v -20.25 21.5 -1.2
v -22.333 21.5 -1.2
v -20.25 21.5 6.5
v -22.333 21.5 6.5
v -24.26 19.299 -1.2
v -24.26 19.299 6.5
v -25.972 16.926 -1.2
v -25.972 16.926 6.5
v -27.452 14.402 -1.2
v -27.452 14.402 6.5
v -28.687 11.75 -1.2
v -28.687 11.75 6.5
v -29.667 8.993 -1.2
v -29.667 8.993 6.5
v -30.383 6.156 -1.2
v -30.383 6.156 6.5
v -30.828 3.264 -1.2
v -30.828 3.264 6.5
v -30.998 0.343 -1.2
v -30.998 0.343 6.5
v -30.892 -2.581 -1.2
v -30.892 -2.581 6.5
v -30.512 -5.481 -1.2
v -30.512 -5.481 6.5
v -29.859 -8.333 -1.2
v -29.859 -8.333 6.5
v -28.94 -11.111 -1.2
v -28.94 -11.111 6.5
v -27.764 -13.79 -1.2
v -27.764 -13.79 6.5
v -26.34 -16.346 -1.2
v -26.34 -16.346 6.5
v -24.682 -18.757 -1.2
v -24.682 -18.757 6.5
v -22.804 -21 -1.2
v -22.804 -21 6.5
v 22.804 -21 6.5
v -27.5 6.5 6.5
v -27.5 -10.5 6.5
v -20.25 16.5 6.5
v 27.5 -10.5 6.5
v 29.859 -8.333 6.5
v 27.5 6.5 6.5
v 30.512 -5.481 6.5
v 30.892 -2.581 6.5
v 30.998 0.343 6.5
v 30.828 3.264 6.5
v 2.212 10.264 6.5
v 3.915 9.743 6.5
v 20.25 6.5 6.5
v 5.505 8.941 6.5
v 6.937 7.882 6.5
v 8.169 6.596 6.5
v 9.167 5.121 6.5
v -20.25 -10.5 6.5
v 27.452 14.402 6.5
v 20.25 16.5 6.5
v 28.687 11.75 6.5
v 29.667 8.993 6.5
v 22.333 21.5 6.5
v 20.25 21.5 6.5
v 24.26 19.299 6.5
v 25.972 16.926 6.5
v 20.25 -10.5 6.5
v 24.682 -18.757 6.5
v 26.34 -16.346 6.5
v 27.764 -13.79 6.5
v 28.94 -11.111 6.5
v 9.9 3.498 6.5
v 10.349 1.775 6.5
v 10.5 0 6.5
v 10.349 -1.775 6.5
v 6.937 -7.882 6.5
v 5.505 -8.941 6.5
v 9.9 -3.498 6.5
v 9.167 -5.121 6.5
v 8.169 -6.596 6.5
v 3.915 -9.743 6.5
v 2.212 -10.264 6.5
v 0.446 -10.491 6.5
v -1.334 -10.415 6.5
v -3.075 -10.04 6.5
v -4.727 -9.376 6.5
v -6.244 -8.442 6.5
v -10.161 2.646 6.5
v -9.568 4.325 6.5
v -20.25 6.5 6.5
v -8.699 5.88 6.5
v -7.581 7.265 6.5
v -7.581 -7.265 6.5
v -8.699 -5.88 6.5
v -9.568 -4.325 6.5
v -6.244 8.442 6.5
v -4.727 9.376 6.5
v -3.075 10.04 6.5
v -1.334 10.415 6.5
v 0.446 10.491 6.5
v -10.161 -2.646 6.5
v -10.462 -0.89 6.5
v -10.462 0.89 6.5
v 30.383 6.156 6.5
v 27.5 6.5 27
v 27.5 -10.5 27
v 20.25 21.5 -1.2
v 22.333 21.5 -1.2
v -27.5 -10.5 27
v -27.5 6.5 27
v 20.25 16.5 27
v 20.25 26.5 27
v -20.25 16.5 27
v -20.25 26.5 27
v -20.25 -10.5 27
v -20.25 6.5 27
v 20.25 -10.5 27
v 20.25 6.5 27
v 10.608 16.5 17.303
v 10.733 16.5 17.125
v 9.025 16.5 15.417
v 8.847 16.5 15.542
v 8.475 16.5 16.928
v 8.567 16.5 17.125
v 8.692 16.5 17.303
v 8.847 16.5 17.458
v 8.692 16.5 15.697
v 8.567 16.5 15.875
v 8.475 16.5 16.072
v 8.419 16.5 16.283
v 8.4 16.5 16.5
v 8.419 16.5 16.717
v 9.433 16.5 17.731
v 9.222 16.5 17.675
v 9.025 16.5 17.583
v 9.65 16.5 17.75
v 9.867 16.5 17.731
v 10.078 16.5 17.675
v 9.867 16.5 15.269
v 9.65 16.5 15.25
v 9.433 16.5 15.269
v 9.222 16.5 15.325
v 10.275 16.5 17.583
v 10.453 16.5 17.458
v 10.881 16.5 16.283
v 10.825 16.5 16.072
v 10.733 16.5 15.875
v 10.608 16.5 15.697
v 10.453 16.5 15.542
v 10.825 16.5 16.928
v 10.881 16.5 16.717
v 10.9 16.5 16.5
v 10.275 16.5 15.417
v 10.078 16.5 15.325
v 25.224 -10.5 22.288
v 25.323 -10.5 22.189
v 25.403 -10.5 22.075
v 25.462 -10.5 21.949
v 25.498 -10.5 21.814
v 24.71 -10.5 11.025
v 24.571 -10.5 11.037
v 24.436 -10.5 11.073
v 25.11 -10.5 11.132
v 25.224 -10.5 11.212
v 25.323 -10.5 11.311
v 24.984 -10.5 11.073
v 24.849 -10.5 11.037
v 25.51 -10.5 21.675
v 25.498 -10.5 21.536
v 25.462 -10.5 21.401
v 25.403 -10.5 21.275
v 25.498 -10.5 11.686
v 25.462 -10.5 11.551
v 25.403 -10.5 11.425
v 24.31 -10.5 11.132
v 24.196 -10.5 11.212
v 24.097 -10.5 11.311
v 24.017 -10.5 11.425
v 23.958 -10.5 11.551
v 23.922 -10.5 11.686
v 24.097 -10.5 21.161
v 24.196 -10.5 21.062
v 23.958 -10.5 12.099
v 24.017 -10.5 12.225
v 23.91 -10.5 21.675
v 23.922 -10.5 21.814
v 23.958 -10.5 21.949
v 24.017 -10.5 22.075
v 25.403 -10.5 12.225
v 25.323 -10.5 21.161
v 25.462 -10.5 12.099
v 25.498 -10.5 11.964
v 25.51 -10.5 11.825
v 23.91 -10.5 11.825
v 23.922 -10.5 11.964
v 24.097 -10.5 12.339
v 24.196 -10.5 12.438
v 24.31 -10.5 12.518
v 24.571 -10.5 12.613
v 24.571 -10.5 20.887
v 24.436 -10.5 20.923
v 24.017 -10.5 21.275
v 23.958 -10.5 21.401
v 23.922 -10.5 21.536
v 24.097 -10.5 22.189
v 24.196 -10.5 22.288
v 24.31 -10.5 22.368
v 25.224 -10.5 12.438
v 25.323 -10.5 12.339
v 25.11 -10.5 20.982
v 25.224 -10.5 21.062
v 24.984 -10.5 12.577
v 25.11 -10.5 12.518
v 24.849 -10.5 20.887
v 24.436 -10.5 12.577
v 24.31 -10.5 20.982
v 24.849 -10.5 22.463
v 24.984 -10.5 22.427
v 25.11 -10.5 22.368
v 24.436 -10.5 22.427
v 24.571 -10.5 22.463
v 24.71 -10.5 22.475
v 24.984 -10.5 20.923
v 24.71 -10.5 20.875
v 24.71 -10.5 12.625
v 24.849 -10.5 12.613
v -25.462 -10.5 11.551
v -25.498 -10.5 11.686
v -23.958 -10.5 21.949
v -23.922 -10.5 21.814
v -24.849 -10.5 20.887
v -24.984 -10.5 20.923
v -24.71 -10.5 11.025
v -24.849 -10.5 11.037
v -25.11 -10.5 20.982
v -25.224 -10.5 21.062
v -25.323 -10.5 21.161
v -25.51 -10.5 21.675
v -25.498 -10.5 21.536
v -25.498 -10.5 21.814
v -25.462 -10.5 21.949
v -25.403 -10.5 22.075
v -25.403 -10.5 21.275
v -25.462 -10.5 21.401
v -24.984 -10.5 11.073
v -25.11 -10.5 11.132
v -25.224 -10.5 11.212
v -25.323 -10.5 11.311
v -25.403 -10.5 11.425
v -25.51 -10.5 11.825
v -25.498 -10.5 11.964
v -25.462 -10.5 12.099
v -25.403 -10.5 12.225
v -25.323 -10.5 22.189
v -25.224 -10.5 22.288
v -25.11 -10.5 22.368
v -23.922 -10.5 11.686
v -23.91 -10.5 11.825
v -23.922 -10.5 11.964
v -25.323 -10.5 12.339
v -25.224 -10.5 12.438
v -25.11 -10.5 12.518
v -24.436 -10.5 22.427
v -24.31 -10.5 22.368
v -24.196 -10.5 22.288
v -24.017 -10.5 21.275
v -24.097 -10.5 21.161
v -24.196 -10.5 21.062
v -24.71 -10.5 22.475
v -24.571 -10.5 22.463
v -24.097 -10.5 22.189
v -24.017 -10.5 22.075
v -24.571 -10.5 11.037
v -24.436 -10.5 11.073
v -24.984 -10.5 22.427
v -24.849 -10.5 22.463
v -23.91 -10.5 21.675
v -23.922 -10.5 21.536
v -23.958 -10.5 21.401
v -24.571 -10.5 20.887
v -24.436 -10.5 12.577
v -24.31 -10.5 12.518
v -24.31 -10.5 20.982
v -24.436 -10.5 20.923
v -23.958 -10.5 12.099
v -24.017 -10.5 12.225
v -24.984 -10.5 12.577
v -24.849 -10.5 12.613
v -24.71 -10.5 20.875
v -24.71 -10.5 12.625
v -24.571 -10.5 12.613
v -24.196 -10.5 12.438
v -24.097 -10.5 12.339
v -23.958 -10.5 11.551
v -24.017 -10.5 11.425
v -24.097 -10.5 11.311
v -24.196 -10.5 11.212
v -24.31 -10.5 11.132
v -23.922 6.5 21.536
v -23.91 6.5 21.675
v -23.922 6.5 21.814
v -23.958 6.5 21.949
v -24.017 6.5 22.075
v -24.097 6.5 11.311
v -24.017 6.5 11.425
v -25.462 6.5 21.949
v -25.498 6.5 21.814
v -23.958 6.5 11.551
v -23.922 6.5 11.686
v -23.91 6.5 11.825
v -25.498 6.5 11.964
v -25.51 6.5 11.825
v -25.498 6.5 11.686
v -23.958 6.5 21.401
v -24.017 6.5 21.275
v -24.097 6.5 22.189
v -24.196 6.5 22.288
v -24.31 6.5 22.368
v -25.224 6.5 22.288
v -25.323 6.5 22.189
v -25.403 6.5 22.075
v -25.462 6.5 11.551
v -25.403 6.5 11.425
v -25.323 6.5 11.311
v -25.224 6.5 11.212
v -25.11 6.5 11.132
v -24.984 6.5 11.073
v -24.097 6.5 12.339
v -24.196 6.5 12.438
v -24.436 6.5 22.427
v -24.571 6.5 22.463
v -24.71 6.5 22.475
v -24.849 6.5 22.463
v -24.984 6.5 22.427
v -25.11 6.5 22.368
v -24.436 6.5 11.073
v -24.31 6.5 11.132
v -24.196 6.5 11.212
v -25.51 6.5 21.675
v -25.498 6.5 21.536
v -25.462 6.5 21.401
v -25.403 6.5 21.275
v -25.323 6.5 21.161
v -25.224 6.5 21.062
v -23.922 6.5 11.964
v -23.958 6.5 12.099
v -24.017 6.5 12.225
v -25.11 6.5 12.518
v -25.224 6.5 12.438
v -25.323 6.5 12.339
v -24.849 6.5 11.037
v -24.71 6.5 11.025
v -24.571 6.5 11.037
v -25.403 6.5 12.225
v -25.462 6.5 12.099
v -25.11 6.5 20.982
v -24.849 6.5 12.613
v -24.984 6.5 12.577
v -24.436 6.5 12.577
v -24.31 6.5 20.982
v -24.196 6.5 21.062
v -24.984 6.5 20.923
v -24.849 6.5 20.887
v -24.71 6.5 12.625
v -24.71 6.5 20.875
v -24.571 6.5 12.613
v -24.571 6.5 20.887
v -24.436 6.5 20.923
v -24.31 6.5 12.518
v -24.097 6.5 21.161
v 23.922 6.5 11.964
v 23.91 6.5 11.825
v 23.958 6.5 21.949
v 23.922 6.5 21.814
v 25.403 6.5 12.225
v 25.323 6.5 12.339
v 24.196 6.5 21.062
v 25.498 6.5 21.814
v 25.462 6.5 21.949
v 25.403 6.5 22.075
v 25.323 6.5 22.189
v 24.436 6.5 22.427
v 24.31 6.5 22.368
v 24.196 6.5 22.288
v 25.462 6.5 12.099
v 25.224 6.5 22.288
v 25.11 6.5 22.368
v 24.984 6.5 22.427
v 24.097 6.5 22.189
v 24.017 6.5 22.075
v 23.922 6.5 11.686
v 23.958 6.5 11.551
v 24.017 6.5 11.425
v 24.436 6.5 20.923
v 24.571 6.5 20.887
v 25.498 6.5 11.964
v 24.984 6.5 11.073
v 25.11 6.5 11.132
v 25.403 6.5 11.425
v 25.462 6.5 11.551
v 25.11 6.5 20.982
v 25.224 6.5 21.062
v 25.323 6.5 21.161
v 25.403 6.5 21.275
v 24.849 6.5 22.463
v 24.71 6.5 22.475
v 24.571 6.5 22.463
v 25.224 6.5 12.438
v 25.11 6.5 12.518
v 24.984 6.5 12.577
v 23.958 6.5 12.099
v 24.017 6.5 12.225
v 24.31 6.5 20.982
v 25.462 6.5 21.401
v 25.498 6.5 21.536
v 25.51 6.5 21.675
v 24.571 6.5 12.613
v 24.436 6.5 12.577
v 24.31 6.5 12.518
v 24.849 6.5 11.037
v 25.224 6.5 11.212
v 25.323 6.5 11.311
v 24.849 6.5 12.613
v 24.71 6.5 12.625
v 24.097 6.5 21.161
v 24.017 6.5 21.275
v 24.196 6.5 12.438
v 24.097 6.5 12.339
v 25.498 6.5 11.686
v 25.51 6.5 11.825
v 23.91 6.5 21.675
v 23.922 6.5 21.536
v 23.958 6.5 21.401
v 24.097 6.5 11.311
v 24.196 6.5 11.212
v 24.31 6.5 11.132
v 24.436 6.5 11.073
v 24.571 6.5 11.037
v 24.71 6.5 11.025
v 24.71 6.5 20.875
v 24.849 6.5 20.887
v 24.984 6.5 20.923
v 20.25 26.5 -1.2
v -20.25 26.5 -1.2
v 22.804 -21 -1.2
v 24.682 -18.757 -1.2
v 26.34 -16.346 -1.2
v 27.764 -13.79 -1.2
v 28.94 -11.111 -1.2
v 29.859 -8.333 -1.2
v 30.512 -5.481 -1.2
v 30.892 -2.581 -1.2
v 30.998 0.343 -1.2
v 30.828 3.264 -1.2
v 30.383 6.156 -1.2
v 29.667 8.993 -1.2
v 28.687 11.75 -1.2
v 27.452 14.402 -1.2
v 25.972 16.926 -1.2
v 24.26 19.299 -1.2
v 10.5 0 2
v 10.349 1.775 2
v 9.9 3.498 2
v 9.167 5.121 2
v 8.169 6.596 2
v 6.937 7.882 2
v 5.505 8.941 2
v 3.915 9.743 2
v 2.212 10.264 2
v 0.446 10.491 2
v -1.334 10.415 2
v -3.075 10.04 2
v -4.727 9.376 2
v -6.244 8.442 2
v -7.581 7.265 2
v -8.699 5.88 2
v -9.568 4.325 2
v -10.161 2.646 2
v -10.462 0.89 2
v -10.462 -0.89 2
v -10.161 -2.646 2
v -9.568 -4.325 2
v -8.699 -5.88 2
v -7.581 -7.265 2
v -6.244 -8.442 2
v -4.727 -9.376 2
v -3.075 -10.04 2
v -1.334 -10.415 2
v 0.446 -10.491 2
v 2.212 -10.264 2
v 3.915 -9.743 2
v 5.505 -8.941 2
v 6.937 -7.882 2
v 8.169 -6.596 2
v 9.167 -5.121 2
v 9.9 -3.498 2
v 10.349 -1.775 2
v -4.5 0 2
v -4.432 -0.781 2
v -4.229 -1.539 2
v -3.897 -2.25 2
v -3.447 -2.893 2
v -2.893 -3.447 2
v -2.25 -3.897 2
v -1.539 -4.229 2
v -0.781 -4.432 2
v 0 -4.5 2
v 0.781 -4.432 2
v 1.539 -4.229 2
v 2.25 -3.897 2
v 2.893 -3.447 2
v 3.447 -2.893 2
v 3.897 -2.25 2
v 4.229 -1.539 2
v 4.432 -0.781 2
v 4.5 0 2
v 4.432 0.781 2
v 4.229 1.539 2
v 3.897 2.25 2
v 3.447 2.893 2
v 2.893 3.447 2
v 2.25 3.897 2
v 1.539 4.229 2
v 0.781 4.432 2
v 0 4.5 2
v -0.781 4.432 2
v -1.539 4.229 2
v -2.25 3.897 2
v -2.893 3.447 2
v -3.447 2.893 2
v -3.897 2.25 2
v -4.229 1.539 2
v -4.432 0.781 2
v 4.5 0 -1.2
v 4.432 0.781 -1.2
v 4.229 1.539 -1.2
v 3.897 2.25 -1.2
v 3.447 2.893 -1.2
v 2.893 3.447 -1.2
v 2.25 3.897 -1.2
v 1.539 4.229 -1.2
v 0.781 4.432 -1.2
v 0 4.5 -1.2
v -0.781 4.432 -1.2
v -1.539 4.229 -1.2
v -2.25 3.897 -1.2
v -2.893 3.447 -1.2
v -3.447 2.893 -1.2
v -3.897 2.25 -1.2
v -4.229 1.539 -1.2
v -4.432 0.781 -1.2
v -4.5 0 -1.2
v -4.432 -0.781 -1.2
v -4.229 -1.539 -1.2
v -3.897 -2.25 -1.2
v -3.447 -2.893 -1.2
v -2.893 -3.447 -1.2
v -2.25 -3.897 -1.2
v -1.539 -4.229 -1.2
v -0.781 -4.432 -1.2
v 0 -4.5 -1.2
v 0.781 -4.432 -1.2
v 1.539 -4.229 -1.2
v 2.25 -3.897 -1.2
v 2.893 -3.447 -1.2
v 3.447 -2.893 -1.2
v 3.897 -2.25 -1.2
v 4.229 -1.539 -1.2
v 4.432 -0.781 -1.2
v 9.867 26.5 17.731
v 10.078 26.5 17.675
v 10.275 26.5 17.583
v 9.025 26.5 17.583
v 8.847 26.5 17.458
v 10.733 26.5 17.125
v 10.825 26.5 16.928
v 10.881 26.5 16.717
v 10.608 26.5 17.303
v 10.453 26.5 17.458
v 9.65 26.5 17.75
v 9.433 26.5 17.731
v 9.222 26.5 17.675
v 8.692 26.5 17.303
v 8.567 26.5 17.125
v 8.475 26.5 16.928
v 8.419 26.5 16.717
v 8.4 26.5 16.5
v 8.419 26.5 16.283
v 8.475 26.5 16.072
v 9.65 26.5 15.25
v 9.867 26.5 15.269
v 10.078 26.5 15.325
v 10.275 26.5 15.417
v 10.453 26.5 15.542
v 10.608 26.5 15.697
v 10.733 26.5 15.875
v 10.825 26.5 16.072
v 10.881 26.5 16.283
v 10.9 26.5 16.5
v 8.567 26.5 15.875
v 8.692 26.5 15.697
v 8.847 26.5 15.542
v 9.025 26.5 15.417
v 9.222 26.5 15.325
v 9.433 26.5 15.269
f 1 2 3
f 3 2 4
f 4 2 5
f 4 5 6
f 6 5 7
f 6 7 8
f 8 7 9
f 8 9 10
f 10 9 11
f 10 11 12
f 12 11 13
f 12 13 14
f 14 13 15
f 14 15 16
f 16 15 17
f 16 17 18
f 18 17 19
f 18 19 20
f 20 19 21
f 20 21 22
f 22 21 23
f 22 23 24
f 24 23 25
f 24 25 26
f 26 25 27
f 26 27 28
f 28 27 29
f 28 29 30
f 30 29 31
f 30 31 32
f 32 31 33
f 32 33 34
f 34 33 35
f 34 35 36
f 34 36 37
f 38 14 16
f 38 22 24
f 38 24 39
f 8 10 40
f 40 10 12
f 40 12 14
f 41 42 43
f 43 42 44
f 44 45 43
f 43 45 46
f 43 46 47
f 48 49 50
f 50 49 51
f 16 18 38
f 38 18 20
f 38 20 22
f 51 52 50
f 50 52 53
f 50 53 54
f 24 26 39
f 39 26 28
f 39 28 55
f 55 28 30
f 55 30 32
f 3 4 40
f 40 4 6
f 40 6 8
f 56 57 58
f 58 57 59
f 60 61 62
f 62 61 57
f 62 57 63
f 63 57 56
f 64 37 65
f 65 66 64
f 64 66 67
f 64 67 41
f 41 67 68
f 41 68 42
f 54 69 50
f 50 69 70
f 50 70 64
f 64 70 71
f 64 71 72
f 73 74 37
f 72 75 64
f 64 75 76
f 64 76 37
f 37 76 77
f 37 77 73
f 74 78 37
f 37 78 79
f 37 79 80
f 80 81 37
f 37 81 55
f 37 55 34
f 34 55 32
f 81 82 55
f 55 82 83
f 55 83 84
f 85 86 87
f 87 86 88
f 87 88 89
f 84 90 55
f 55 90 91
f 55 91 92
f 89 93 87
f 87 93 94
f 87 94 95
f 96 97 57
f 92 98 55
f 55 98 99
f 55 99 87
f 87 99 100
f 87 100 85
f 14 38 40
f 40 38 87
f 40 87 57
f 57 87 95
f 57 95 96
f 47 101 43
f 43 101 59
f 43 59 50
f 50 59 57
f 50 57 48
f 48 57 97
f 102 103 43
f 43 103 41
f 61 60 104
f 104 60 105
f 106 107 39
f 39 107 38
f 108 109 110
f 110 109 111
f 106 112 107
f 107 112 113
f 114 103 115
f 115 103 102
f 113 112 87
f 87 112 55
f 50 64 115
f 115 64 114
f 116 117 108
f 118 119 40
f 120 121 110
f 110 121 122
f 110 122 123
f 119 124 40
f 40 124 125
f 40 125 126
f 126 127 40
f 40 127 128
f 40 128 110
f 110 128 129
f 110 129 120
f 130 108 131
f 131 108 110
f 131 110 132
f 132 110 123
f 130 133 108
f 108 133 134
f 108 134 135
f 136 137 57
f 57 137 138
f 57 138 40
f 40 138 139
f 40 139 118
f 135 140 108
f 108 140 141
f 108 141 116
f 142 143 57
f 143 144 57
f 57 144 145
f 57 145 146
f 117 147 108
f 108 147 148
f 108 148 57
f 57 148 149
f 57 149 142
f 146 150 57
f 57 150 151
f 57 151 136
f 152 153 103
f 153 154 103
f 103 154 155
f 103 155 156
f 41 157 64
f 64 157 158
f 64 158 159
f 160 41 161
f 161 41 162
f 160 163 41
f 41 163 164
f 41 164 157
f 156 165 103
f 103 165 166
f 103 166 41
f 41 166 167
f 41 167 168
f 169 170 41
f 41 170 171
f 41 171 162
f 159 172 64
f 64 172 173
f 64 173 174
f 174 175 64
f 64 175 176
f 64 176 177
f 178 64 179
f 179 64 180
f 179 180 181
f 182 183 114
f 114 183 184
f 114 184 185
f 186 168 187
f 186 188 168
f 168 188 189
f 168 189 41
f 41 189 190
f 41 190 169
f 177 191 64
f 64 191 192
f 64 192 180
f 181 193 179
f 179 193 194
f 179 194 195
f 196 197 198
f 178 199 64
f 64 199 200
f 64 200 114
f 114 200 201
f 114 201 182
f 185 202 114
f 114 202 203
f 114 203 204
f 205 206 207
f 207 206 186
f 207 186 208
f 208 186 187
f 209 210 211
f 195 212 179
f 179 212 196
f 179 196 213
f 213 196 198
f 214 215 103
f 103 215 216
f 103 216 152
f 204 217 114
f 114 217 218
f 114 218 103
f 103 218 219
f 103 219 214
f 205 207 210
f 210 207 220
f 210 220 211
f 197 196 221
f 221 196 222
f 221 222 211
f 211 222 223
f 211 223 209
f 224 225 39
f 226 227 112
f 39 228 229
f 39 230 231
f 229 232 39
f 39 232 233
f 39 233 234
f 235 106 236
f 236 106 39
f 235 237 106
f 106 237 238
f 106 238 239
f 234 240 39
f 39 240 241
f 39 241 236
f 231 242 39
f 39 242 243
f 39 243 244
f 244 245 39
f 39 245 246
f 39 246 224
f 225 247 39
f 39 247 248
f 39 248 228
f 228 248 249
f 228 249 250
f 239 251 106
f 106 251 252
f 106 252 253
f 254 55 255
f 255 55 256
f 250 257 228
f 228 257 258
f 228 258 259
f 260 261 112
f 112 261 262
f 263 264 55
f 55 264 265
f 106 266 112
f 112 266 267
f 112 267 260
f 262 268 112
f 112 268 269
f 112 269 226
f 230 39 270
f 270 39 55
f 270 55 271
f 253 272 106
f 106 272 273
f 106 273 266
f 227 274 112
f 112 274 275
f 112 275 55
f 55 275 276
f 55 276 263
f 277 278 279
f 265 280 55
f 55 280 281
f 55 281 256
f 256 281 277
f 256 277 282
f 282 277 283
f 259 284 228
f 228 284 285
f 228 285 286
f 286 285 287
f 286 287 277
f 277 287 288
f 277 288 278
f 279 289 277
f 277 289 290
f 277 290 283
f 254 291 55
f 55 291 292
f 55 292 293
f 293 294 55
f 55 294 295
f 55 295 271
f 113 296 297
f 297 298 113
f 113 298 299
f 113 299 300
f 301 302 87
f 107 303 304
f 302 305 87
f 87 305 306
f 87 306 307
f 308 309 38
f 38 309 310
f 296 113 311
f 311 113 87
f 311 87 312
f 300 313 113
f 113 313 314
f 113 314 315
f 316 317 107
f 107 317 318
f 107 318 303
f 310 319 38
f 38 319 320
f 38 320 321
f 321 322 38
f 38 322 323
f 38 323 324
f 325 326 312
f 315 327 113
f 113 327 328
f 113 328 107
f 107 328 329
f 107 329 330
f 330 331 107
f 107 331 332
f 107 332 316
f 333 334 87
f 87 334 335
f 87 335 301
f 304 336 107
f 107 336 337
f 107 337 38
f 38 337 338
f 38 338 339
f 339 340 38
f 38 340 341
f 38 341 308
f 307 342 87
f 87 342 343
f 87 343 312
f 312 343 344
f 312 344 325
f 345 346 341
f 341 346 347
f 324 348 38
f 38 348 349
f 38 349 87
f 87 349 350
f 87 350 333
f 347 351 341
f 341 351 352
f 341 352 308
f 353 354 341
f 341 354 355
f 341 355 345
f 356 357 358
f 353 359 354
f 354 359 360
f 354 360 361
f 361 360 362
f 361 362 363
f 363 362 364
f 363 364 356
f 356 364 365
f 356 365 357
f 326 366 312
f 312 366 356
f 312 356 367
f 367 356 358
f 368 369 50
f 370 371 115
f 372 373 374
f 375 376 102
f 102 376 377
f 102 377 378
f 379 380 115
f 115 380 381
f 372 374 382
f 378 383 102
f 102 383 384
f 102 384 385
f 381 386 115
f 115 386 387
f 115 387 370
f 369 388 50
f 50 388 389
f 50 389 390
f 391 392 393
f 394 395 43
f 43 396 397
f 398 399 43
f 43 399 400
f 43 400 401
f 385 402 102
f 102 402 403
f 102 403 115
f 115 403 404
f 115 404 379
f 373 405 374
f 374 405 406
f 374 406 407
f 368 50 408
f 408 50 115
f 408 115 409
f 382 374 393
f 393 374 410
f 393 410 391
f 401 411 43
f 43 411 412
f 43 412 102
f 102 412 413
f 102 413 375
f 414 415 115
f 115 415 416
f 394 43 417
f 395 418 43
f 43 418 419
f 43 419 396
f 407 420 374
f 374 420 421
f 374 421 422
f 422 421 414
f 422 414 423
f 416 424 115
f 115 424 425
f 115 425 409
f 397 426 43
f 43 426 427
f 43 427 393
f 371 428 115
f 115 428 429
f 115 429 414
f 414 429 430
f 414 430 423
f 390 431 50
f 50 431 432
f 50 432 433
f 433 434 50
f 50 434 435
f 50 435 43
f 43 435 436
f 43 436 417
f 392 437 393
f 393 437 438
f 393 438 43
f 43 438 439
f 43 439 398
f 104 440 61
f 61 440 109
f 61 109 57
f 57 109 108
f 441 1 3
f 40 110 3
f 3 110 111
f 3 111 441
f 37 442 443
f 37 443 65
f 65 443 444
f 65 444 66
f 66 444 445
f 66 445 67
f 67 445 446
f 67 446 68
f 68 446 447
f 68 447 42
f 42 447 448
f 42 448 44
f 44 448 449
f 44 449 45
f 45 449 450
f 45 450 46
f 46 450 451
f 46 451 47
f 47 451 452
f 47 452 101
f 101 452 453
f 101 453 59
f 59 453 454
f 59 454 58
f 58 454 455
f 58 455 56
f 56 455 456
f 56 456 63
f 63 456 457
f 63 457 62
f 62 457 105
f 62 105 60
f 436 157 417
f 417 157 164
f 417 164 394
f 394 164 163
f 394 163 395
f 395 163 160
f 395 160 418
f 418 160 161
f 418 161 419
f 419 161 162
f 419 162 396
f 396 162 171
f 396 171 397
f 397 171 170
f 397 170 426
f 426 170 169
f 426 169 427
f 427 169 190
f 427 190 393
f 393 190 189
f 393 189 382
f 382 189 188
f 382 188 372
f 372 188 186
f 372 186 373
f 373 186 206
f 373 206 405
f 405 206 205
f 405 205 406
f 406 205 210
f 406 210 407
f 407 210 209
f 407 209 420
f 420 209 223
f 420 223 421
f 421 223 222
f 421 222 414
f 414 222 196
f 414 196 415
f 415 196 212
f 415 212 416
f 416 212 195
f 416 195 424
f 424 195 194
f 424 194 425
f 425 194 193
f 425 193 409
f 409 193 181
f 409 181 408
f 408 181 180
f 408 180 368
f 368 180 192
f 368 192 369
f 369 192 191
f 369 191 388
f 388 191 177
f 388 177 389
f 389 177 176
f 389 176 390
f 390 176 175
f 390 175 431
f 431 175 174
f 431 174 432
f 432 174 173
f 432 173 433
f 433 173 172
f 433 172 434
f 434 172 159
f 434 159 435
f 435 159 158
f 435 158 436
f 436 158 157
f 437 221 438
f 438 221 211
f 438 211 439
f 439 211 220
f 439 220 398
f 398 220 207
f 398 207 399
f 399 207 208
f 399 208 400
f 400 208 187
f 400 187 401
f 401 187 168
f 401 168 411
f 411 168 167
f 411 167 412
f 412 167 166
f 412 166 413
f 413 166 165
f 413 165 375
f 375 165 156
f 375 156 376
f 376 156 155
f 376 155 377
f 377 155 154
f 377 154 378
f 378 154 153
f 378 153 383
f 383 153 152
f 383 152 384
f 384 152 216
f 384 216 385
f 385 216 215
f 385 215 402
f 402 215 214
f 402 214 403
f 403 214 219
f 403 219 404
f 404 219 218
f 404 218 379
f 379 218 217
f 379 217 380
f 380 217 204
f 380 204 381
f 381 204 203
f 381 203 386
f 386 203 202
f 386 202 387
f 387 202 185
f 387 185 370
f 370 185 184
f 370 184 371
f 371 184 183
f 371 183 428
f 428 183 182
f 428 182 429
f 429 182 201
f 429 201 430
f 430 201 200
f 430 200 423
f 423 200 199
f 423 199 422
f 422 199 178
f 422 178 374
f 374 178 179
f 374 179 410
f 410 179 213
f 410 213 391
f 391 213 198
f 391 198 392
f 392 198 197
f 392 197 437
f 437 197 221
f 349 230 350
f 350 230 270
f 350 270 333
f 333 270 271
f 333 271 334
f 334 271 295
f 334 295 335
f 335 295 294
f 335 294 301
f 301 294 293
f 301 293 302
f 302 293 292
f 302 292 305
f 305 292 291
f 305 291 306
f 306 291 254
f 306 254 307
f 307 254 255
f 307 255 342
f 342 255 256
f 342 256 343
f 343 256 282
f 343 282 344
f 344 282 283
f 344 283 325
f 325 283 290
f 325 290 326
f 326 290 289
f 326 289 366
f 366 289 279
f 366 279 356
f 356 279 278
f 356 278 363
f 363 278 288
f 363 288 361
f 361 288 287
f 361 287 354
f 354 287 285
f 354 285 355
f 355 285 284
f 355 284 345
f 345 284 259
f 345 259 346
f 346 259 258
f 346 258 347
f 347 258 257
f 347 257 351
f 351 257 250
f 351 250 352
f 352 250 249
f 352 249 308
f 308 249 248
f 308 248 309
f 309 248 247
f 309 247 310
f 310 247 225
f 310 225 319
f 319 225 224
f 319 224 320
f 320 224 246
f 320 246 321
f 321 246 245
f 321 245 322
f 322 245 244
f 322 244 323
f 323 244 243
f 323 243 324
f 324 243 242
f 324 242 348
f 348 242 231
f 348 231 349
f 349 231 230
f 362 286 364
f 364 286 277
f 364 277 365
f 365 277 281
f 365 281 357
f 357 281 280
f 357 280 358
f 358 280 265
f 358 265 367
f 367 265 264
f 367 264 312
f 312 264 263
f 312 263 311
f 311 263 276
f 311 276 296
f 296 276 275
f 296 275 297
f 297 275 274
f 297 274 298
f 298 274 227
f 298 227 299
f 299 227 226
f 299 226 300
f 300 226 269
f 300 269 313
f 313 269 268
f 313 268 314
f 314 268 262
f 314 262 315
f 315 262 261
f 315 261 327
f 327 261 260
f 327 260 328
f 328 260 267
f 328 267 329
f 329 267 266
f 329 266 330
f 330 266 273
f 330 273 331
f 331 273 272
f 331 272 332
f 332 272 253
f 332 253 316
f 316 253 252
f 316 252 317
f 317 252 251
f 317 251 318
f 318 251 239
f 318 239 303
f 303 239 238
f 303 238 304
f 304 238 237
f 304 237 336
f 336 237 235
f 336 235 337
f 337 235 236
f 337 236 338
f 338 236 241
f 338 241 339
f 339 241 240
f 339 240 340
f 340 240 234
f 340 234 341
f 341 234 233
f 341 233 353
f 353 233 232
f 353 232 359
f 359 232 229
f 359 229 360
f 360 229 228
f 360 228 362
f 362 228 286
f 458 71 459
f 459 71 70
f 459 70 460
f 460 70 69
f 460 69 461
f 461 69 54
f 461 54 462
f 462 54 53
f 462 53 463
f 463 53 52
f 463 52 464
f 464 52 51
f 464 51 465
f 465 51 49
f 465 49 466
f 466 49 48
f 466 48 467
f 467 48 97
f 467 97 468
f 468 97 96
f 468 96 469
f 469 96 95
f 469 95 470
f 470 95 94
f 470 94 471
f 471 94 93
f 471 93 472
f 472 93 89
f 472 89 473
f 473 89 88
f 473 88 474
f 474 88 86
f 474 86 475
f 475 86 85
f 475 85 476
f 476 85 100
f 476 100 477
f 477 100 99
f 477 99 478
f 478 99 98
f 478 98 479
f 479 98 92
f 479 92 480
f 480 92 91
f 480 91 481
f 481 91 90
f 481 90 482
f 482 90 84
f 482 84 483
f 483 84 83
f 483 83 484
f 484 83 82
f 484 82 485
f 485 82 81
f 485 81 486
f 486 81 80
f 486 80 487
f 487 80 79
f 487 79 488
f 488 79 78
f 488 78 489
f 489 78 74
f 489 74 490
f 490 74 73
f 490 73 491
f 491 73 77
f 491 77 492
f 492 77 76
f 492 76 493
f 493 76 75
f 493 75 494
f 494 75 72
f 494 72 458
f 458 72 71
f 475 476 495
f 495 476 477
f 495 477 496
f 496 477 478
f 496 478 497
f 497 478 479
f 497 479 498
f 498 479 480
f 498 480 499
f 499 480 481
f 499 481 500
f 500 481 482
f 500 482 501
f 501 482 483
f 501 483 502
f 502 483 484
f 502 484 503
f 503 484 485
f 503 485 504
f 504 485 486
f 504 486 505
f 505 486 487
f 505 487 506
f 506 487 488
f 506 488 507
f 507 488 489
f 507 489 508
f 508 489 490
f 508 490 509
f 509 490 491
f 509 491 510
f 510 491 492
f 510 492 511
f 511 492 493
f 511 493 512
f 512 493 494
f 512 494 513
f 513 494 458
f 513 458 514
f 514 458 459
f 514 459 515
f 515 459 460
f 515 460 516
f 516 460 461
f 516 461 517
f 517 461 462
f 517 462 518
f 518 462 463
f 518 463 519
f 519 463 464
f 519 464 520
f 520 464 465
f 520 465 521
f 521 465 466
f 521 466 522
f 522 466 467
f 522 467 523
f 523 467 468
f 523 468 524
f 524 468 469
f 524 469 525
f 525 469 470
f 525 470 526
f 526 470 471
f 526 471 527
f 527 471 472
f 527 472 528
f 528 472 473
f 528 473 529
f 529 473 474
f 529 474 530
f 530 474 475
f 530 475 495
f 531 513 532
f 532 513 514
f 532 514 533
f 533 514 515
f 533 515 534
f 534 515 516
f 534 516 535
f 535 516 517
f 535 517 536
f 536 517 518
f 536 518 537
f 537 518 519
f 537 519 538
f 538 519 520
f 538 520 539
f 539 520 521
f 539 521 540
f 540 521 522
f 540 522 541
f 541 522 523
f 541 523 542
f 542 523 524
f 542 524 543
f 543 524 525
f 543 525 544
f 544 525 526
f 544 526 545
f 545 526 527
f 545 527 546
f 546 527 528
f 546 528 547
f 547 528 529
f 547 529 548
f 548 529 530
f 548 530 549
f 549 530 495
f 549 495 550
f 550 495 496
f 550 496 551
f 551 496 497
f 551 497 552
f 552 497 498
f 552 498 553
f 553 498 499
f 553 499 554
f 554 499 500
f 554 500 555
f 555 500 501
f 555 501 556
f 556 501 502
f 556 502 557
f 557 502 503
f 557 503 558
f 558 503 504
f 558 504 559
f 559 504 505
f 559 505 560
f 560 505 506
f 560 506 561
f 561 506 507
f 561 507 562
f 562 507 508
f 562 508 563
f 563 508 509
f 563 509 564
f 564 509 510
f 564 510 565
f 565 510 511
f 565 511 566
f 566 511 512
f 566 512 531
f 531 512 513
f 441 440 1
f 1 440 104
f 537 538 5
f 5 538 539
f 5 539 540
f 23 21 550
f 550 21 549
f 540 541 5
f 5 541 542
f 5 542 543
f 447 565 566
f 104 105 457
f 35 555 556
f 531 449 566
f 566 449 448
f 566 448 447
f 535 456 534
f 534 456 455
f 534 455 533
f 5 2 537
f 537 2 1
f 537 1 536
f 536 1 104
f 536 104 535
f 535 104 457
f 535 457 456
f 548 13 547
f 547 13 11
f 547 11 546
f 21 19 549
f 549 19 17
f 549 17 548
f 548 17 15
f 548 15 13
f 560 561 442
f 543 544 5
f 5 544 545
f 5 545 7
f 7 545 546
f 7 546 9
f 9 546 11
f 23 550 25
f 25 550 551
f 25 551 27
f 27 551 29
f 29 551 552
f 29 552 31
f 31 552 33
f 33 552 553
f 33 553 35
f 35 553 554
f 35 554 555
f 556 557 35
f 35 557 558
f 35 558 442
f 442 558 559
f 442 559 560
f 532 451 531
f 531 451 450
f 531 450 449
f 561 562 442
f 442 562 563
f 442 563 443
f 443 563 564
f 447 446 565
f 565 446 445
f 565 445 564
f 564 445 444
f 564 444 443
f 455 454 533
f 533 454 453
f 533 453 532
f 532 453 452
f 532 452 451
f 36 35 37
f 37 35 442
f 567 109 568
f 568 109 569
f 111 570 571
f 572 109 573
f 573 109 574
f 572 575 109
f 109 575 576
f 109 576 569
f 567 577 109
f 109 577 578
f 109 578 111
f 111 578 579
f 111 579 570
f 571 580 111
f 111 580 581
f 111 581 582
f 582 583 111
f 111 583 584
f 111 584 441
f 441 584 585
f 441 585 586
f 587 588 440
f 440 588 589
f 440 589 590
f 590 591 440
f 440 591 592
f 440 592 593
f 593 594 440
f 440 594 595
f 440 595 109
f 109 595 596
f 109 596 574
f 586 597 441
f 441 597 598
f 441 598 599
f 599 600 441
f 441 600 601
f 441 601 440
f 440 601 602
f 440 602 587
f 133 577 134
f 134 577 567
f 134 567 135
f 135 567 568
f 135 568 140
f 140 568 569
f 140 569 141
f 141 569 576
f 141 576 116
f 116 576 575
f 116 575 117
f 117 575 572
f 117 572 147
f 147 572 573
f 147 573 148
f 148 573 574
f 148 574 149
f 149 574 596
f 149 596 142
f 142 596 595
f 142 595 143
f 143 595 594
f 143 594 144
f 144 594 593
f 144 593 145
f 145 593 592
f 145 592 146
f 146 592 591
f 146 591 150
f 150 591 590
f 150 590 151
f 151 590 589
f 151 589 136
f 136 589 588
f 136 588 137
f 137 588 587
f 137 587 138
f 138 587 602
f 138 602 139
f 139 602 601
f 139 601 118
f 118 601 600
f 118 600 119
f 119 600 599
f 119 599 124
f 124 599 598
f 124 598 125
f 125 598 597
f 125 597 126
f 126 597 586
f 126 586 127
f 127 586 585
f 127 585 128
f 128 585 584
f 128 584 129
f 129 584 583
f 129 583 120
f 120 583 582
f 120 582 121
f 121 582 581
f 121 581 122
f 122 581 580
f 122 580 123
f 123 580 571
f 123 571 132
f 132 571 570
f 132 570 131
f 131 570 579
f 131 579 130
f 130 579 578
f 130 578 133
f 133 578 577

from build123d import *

# Parameters (mm, degrees)
ESQUISSE1_W              = 55
ESQUISSE1_H              = 43
BOSS_EXTRU_1_DEPTH       = 27
ESQUISSE2_W              = 40.5
ESQUISSE2_H              = 21.676575317
ENL_V_MAT_EXTRU_1_DEPTH  = 38
ESQUISSE3_R              = 0.7
ENL_V_MAT_EXTRU_2_DEPTH  = 43
ESQUISSE4_W              = 55
ESQUISSE4_H              = 20.5
ENL_V_MAT_EXTRU_3_DEPTH  = 11
ENL_V_MAT_EXTRU_6_REACH  = 66.933
ESQUISSE5_W              = 20.5
ESQUISSE5_H              = 10
ESQUISSE6_W              = 7.25
ESQUISSE6_H              = 20.5
ENL_V_MAT_EXTRU_7_DEPTH  = 5
ESQUISSE7_R              = 31
BOSS_EXTRU_2_DEPTH       = 6.5
ESQUISSE8_R              = 41
ESQUISSE8_R_2            = 31
ENL_V_MAT_EXTRU_8_DEPTH  = 6.5
TROU_TARAUD_M2X0_41_D    = 1.6
ESQUISSE10_R             = 10.5
ENL_V_MAT_EXTRU_9_DEPTH  = 4.5
ESQUISSE11_R             = 4.5
ENL_V_MAT_EXTRU_10_DEPTH = 2
ESQUISSE12_R             = 9.25
ESQUISSE12_R_2           = 1.25
BOSS_EXTRU_3_DEPTH       = 5
ESQUISSE13_W             = 50.114904395
ESQUISSE13_H             = 12.012600019
ENL_V_MAT_EXTRU_11_DEPTH = 6.5
BOSS_EXTRU_4_START       = 1.2
BOSS_EXTRU_4_DEPTH       = 1.2
ESQUISSE15_W             = 53.005482756
ESQUISSE15_H             = 10
ENL_V_MAT_EXTRU_12_DEPTH = 7.7
ESQUISSE16_R             = 4.5
ENL_V_MAT_EXTRU_13_DEPTH = 1.2
BOSS_EXTRU_5_START       = -28.2
ESQUISSE17_W             = 40.5
ESQUISSE17_H             = 5
BOSS_EXTRU_5_DEPTH       = 28.2
ESQUISSE18_R             = 1
ENL_V_MAT_EXTRU_14_DEPTH = 10
TROU_TARAUD_M3X0_51_D    = 2.5


with BuildPart() as part:
    # Esquisse1 → Boss.-Extru.1 (new body)
    with BuildSketch(Plane.XY):
        Rectangle(ESQUISSE1_W, ESQUISSE1_H)
    extrude(amount=BOSS_EXTRU_1_DEPTH)

    # Esquisse2 → Enlèv. mat.-Extru.1 (cut)
    with BuildSketch(Plane.XZ.offset(21.5)):
        with Locations((0, 17.338287659)):
            Rectangle(ESQUISSE2_W, ESQUISSE2_H)
    extrude(amount=-ENL_V_MAT_EXTRU_1_DEPTH, mode=Mode.SUBTRACT)

    # Esquisse3 → Enlèv. mat.-Extru.2 (cut)
    with BuildSketch(Plane.XZ.offset(21.5)):
        with Locations(Location((-24.71, 21.675, 0), (0, 0, 270))):
            Circle(ESQUISSE3_R)
        with Locations(Location((-24.71, 11.825, 0), (0, 0, 270))):
            Circle(ESQUISSE3_R)
        with Locations(Location((24.71, 11.825, 0), (0, 0, 270))):
            Circle(ESQUISSE3_R)
        with Locations(Location((24.71, 21.675, 0), (0, 0, 270))):
            Circle(ESQUISSE3_R)
    extrude(amount=-ENL_V_MAT_EXTRU_2_DEPTH, mode=Mode.SUBTRACT)

    # Esquisse4 → Enlèv. mat.-Extru.3 (cut)
    with BuildSketch(Plane.XZ.offset(21.5)):
        with Locations((0, 16.75)):
            Rectangle(ESQUISSE4_W, ESQUISSE4_H)
    extrude(amount=-ENL_V_MAT_EXTRU_3_DEPTH, mode=Mode.SUBTRACT)

    # Enlèv. mat.-Extru.6: up to this face of the body (flat: up to its plane)
    enl_v_mat_extru_6_end = Plane(part.part.faces().sort_by_distance((27.5, 3.85676109, 12.716595404))[0])
    # Esquisse5 → Enlèv. mat.-Extru.6 (cut, up to the picked face)
    with BuildSketch(Plane.ZY.offset(27.5), mode=Mode.PRIVATE) as enl_v_mat_extru_6_sk1:
        with Locations((16.75, 11.5)):
            Rectangle(ESQUISSE5_W, ESQUISSE5_H)
    enl_v_mat_extru_6_tool1 = split(extrude(enl_v_mat_extru_6_sk1.sketch, amount=-ENL_V_MAT_EXTRU_6_REACH, mode=Mode.PRIVATE), bisect_by=enl_v_mat_extru_6_end, keep=Keep.BOTH, mode=Mode.PRIVATE)
    add(enl_v_mat_extru_6_tool1.solids().sort_by(Axis((-27.5, 11.5, 16.75), (1, 0, 0)))[0], mode=Mode.SUBTRACT)

    # Esquisse6 → Enlèv. mat.-Extru.7 (cut)
    with BuildSketch(Plane.XZ.offset(-16.5)):
        with Locations((-23.875, 16.75)):
            Rectangle(ESQUISSE6_W, ESQUISSE6_H)
        with Locations((23.875, 16.75)):
            Rectangle(ESQUISSE6_W, ESQUISSE6_H)
    extrude(amount=-ENL_V_MAT_EXTRU_7_DEPTH, mode=Mode.SUBTRACT)

    # Esquisse7 → Boss.-Extru.2 (add)
    with BuildSketch(Plane(origin=(0, 0, 0), x_dir=(-1, 0, 0), z_dir=(0, 0, -1))):
        Circle(ESQUISSE7_R)
    extrude(amount=-BOSS_EXTRU_2_DEPTH)

    # Esquisse8 → Enlèv. mat.-Extru.8 (cut)
    with BuildSketch(Plane(origin=(0, 0, 0), x_dir=(-1, 0, 0), z_dir=(0, 0, -1))):
        Circle(ESQUISSE8_R)
        Circle(ESQUISSE8_R_2, mode=Mode.SUBTRACT)
    extrude(amount=-ENL_V_MAT_EXTRU_8_DEPTH, mode=Mode.SUBTRACT)

    # Trou taraudé M2x0.41 (through all)
    with Locations(Plane(origin=(-24.71, -10.5, 21.675), x_dir=(0, 0, -1), z_dir=(0, -1, 0))):
        with Locations((0, 0), (9.85, 0), (0, 49.42), (9.85, 49.42)):
            Hole(TROU_TARAUD_M2X0_41_D / 2)

    # Esquisse10 → Enlèv. mat.-Extru.9 (cut)
    with BuildSketch(Plane.XY.offset(6.5)):
        Circle(ESQUISSE10_R)
    extrude(amount=-ENL_V_MAT_EXTRU_9_DEPTH, mode=Mode.SUBTRACT)

    # Esquisse11 → Enlèv. mat.-Extru.10 (cut)
    with BuildSketch(Plane.XY.offset(2)):
        Circle(ESQUISSE11_R)
    extrude(amount=-ENL_V_MAT_EXTRU_10_DEPTH, mode=Mode.SUBTRACT)

    # Esquisse12 → Boss.-Extru.3 (add)
    with BuildSketch(Plane(origin=(0, 21.5, 0), x_dir=(1, 0, 0), z_dir=(0, 1, 0))):
        with Locations(Location((0, -15.876822983, 0), (0, 0, 90))):
            Circle(ESQUISSE12_R)
        with Locations(Location((0, -15.876822983, 0), (0, 0, 270))):
            Circle(ESQUISSE12_R_2, mode=Mode.SUBTRACT)
    extrude(amount=BOSS_EXTRU_3_DEPTH)

    # Esquisse13 → Enlèv. mat.-Extru.11 (cut)
    with BuildSketch(Plane.XY.offset(6.5)):
        with Locations((-0.983340997, 27.50630001)):
            Rectangle(ESQUISSE13_W, ESQUISSE13_H)
    extrude(amount=-ENL_V_MAT_EXTRU_11_DEPTH, mode=Mode.SUBTRACT)

    # Esquisse14 → Boss.-Extru.4 (add)
    with BuildSketch(Plane(origin=(0, 0, 0), x_dir=(-1, 0, 0), z_dir=(0, 0, -1)).offset(BOSS_EXTRU_4_START)):
        with BuildLine():
            Line((-22.332711434, 21.5), (22.332711434, 21.5))
            ThreePointArc((22.332711434, 21.5), (0, -31), (-22.332711434, 21.5))
        make_face()
    extrude(amount=-BOSS_EXTRU_4_DEPTH)

    # Esquisse15 → Enlèv. mat.-Extru.12 (cut)
    with BuildSketch(Plane.XY.offset(6.5)):
        with Locations((0, -26)):
            Rectangle(ESQUISSE15_W, ESQUISSE15_H)
    extrude(amount=-ENL_V_MAT_EXTRU_12_DEPTH, mode=Mode.SUBTRACT)

    # Esquisse16 → Enlèv. mat.-Extru.13 (cut)
    with BuildSketch(Plane.XY):
        Circle(ESQUISSE16_R)
    extrude(amount=-ENL_V_MAT_EXTRU_13_DEPTH, mode=Mode.SUBTRACT)

    # Esquisse17 → Boss.-Extru.5 (add)
    with BuildSketch(Plane.XY.offset(27).offset(BOSS_EXTRU_5_START)):
        with Locations((0, 24)):
            Rectangle(ESQUISSE17_W, ESQUISSE17_H)
    extrude(amount=BOSS_EXTRU_5_DEPTH)

    # Esquisse18 → Enlèv. mat.-Extru.14 (cut)
    with BuildSketch(Plane(origin=(0, 26.5, 0), x_dir=(1, 0, 0), z_dir=(0, 1, 0))):
        with Locations(Location((9.65, -16.5, 0), (0, 0, 270))):
            Circle(ESQUISSE18_R)
    extrude(amount=-ENL_V_MAT_EXTRU_14_DEPTH, mode=Mode.SUBTRACT)

    # Trou taraudé M3x0.51 (through all)
    with Locations(Plane(origin=(9.65, 26.5, 16.5), x_dir=(0, 0, 1), z_dir=(0, 1, 0))):
        with Locations((0, 0)):
            Hole(TROU_TARAUD_M3X0_51_D / 2)


solid = part.part
